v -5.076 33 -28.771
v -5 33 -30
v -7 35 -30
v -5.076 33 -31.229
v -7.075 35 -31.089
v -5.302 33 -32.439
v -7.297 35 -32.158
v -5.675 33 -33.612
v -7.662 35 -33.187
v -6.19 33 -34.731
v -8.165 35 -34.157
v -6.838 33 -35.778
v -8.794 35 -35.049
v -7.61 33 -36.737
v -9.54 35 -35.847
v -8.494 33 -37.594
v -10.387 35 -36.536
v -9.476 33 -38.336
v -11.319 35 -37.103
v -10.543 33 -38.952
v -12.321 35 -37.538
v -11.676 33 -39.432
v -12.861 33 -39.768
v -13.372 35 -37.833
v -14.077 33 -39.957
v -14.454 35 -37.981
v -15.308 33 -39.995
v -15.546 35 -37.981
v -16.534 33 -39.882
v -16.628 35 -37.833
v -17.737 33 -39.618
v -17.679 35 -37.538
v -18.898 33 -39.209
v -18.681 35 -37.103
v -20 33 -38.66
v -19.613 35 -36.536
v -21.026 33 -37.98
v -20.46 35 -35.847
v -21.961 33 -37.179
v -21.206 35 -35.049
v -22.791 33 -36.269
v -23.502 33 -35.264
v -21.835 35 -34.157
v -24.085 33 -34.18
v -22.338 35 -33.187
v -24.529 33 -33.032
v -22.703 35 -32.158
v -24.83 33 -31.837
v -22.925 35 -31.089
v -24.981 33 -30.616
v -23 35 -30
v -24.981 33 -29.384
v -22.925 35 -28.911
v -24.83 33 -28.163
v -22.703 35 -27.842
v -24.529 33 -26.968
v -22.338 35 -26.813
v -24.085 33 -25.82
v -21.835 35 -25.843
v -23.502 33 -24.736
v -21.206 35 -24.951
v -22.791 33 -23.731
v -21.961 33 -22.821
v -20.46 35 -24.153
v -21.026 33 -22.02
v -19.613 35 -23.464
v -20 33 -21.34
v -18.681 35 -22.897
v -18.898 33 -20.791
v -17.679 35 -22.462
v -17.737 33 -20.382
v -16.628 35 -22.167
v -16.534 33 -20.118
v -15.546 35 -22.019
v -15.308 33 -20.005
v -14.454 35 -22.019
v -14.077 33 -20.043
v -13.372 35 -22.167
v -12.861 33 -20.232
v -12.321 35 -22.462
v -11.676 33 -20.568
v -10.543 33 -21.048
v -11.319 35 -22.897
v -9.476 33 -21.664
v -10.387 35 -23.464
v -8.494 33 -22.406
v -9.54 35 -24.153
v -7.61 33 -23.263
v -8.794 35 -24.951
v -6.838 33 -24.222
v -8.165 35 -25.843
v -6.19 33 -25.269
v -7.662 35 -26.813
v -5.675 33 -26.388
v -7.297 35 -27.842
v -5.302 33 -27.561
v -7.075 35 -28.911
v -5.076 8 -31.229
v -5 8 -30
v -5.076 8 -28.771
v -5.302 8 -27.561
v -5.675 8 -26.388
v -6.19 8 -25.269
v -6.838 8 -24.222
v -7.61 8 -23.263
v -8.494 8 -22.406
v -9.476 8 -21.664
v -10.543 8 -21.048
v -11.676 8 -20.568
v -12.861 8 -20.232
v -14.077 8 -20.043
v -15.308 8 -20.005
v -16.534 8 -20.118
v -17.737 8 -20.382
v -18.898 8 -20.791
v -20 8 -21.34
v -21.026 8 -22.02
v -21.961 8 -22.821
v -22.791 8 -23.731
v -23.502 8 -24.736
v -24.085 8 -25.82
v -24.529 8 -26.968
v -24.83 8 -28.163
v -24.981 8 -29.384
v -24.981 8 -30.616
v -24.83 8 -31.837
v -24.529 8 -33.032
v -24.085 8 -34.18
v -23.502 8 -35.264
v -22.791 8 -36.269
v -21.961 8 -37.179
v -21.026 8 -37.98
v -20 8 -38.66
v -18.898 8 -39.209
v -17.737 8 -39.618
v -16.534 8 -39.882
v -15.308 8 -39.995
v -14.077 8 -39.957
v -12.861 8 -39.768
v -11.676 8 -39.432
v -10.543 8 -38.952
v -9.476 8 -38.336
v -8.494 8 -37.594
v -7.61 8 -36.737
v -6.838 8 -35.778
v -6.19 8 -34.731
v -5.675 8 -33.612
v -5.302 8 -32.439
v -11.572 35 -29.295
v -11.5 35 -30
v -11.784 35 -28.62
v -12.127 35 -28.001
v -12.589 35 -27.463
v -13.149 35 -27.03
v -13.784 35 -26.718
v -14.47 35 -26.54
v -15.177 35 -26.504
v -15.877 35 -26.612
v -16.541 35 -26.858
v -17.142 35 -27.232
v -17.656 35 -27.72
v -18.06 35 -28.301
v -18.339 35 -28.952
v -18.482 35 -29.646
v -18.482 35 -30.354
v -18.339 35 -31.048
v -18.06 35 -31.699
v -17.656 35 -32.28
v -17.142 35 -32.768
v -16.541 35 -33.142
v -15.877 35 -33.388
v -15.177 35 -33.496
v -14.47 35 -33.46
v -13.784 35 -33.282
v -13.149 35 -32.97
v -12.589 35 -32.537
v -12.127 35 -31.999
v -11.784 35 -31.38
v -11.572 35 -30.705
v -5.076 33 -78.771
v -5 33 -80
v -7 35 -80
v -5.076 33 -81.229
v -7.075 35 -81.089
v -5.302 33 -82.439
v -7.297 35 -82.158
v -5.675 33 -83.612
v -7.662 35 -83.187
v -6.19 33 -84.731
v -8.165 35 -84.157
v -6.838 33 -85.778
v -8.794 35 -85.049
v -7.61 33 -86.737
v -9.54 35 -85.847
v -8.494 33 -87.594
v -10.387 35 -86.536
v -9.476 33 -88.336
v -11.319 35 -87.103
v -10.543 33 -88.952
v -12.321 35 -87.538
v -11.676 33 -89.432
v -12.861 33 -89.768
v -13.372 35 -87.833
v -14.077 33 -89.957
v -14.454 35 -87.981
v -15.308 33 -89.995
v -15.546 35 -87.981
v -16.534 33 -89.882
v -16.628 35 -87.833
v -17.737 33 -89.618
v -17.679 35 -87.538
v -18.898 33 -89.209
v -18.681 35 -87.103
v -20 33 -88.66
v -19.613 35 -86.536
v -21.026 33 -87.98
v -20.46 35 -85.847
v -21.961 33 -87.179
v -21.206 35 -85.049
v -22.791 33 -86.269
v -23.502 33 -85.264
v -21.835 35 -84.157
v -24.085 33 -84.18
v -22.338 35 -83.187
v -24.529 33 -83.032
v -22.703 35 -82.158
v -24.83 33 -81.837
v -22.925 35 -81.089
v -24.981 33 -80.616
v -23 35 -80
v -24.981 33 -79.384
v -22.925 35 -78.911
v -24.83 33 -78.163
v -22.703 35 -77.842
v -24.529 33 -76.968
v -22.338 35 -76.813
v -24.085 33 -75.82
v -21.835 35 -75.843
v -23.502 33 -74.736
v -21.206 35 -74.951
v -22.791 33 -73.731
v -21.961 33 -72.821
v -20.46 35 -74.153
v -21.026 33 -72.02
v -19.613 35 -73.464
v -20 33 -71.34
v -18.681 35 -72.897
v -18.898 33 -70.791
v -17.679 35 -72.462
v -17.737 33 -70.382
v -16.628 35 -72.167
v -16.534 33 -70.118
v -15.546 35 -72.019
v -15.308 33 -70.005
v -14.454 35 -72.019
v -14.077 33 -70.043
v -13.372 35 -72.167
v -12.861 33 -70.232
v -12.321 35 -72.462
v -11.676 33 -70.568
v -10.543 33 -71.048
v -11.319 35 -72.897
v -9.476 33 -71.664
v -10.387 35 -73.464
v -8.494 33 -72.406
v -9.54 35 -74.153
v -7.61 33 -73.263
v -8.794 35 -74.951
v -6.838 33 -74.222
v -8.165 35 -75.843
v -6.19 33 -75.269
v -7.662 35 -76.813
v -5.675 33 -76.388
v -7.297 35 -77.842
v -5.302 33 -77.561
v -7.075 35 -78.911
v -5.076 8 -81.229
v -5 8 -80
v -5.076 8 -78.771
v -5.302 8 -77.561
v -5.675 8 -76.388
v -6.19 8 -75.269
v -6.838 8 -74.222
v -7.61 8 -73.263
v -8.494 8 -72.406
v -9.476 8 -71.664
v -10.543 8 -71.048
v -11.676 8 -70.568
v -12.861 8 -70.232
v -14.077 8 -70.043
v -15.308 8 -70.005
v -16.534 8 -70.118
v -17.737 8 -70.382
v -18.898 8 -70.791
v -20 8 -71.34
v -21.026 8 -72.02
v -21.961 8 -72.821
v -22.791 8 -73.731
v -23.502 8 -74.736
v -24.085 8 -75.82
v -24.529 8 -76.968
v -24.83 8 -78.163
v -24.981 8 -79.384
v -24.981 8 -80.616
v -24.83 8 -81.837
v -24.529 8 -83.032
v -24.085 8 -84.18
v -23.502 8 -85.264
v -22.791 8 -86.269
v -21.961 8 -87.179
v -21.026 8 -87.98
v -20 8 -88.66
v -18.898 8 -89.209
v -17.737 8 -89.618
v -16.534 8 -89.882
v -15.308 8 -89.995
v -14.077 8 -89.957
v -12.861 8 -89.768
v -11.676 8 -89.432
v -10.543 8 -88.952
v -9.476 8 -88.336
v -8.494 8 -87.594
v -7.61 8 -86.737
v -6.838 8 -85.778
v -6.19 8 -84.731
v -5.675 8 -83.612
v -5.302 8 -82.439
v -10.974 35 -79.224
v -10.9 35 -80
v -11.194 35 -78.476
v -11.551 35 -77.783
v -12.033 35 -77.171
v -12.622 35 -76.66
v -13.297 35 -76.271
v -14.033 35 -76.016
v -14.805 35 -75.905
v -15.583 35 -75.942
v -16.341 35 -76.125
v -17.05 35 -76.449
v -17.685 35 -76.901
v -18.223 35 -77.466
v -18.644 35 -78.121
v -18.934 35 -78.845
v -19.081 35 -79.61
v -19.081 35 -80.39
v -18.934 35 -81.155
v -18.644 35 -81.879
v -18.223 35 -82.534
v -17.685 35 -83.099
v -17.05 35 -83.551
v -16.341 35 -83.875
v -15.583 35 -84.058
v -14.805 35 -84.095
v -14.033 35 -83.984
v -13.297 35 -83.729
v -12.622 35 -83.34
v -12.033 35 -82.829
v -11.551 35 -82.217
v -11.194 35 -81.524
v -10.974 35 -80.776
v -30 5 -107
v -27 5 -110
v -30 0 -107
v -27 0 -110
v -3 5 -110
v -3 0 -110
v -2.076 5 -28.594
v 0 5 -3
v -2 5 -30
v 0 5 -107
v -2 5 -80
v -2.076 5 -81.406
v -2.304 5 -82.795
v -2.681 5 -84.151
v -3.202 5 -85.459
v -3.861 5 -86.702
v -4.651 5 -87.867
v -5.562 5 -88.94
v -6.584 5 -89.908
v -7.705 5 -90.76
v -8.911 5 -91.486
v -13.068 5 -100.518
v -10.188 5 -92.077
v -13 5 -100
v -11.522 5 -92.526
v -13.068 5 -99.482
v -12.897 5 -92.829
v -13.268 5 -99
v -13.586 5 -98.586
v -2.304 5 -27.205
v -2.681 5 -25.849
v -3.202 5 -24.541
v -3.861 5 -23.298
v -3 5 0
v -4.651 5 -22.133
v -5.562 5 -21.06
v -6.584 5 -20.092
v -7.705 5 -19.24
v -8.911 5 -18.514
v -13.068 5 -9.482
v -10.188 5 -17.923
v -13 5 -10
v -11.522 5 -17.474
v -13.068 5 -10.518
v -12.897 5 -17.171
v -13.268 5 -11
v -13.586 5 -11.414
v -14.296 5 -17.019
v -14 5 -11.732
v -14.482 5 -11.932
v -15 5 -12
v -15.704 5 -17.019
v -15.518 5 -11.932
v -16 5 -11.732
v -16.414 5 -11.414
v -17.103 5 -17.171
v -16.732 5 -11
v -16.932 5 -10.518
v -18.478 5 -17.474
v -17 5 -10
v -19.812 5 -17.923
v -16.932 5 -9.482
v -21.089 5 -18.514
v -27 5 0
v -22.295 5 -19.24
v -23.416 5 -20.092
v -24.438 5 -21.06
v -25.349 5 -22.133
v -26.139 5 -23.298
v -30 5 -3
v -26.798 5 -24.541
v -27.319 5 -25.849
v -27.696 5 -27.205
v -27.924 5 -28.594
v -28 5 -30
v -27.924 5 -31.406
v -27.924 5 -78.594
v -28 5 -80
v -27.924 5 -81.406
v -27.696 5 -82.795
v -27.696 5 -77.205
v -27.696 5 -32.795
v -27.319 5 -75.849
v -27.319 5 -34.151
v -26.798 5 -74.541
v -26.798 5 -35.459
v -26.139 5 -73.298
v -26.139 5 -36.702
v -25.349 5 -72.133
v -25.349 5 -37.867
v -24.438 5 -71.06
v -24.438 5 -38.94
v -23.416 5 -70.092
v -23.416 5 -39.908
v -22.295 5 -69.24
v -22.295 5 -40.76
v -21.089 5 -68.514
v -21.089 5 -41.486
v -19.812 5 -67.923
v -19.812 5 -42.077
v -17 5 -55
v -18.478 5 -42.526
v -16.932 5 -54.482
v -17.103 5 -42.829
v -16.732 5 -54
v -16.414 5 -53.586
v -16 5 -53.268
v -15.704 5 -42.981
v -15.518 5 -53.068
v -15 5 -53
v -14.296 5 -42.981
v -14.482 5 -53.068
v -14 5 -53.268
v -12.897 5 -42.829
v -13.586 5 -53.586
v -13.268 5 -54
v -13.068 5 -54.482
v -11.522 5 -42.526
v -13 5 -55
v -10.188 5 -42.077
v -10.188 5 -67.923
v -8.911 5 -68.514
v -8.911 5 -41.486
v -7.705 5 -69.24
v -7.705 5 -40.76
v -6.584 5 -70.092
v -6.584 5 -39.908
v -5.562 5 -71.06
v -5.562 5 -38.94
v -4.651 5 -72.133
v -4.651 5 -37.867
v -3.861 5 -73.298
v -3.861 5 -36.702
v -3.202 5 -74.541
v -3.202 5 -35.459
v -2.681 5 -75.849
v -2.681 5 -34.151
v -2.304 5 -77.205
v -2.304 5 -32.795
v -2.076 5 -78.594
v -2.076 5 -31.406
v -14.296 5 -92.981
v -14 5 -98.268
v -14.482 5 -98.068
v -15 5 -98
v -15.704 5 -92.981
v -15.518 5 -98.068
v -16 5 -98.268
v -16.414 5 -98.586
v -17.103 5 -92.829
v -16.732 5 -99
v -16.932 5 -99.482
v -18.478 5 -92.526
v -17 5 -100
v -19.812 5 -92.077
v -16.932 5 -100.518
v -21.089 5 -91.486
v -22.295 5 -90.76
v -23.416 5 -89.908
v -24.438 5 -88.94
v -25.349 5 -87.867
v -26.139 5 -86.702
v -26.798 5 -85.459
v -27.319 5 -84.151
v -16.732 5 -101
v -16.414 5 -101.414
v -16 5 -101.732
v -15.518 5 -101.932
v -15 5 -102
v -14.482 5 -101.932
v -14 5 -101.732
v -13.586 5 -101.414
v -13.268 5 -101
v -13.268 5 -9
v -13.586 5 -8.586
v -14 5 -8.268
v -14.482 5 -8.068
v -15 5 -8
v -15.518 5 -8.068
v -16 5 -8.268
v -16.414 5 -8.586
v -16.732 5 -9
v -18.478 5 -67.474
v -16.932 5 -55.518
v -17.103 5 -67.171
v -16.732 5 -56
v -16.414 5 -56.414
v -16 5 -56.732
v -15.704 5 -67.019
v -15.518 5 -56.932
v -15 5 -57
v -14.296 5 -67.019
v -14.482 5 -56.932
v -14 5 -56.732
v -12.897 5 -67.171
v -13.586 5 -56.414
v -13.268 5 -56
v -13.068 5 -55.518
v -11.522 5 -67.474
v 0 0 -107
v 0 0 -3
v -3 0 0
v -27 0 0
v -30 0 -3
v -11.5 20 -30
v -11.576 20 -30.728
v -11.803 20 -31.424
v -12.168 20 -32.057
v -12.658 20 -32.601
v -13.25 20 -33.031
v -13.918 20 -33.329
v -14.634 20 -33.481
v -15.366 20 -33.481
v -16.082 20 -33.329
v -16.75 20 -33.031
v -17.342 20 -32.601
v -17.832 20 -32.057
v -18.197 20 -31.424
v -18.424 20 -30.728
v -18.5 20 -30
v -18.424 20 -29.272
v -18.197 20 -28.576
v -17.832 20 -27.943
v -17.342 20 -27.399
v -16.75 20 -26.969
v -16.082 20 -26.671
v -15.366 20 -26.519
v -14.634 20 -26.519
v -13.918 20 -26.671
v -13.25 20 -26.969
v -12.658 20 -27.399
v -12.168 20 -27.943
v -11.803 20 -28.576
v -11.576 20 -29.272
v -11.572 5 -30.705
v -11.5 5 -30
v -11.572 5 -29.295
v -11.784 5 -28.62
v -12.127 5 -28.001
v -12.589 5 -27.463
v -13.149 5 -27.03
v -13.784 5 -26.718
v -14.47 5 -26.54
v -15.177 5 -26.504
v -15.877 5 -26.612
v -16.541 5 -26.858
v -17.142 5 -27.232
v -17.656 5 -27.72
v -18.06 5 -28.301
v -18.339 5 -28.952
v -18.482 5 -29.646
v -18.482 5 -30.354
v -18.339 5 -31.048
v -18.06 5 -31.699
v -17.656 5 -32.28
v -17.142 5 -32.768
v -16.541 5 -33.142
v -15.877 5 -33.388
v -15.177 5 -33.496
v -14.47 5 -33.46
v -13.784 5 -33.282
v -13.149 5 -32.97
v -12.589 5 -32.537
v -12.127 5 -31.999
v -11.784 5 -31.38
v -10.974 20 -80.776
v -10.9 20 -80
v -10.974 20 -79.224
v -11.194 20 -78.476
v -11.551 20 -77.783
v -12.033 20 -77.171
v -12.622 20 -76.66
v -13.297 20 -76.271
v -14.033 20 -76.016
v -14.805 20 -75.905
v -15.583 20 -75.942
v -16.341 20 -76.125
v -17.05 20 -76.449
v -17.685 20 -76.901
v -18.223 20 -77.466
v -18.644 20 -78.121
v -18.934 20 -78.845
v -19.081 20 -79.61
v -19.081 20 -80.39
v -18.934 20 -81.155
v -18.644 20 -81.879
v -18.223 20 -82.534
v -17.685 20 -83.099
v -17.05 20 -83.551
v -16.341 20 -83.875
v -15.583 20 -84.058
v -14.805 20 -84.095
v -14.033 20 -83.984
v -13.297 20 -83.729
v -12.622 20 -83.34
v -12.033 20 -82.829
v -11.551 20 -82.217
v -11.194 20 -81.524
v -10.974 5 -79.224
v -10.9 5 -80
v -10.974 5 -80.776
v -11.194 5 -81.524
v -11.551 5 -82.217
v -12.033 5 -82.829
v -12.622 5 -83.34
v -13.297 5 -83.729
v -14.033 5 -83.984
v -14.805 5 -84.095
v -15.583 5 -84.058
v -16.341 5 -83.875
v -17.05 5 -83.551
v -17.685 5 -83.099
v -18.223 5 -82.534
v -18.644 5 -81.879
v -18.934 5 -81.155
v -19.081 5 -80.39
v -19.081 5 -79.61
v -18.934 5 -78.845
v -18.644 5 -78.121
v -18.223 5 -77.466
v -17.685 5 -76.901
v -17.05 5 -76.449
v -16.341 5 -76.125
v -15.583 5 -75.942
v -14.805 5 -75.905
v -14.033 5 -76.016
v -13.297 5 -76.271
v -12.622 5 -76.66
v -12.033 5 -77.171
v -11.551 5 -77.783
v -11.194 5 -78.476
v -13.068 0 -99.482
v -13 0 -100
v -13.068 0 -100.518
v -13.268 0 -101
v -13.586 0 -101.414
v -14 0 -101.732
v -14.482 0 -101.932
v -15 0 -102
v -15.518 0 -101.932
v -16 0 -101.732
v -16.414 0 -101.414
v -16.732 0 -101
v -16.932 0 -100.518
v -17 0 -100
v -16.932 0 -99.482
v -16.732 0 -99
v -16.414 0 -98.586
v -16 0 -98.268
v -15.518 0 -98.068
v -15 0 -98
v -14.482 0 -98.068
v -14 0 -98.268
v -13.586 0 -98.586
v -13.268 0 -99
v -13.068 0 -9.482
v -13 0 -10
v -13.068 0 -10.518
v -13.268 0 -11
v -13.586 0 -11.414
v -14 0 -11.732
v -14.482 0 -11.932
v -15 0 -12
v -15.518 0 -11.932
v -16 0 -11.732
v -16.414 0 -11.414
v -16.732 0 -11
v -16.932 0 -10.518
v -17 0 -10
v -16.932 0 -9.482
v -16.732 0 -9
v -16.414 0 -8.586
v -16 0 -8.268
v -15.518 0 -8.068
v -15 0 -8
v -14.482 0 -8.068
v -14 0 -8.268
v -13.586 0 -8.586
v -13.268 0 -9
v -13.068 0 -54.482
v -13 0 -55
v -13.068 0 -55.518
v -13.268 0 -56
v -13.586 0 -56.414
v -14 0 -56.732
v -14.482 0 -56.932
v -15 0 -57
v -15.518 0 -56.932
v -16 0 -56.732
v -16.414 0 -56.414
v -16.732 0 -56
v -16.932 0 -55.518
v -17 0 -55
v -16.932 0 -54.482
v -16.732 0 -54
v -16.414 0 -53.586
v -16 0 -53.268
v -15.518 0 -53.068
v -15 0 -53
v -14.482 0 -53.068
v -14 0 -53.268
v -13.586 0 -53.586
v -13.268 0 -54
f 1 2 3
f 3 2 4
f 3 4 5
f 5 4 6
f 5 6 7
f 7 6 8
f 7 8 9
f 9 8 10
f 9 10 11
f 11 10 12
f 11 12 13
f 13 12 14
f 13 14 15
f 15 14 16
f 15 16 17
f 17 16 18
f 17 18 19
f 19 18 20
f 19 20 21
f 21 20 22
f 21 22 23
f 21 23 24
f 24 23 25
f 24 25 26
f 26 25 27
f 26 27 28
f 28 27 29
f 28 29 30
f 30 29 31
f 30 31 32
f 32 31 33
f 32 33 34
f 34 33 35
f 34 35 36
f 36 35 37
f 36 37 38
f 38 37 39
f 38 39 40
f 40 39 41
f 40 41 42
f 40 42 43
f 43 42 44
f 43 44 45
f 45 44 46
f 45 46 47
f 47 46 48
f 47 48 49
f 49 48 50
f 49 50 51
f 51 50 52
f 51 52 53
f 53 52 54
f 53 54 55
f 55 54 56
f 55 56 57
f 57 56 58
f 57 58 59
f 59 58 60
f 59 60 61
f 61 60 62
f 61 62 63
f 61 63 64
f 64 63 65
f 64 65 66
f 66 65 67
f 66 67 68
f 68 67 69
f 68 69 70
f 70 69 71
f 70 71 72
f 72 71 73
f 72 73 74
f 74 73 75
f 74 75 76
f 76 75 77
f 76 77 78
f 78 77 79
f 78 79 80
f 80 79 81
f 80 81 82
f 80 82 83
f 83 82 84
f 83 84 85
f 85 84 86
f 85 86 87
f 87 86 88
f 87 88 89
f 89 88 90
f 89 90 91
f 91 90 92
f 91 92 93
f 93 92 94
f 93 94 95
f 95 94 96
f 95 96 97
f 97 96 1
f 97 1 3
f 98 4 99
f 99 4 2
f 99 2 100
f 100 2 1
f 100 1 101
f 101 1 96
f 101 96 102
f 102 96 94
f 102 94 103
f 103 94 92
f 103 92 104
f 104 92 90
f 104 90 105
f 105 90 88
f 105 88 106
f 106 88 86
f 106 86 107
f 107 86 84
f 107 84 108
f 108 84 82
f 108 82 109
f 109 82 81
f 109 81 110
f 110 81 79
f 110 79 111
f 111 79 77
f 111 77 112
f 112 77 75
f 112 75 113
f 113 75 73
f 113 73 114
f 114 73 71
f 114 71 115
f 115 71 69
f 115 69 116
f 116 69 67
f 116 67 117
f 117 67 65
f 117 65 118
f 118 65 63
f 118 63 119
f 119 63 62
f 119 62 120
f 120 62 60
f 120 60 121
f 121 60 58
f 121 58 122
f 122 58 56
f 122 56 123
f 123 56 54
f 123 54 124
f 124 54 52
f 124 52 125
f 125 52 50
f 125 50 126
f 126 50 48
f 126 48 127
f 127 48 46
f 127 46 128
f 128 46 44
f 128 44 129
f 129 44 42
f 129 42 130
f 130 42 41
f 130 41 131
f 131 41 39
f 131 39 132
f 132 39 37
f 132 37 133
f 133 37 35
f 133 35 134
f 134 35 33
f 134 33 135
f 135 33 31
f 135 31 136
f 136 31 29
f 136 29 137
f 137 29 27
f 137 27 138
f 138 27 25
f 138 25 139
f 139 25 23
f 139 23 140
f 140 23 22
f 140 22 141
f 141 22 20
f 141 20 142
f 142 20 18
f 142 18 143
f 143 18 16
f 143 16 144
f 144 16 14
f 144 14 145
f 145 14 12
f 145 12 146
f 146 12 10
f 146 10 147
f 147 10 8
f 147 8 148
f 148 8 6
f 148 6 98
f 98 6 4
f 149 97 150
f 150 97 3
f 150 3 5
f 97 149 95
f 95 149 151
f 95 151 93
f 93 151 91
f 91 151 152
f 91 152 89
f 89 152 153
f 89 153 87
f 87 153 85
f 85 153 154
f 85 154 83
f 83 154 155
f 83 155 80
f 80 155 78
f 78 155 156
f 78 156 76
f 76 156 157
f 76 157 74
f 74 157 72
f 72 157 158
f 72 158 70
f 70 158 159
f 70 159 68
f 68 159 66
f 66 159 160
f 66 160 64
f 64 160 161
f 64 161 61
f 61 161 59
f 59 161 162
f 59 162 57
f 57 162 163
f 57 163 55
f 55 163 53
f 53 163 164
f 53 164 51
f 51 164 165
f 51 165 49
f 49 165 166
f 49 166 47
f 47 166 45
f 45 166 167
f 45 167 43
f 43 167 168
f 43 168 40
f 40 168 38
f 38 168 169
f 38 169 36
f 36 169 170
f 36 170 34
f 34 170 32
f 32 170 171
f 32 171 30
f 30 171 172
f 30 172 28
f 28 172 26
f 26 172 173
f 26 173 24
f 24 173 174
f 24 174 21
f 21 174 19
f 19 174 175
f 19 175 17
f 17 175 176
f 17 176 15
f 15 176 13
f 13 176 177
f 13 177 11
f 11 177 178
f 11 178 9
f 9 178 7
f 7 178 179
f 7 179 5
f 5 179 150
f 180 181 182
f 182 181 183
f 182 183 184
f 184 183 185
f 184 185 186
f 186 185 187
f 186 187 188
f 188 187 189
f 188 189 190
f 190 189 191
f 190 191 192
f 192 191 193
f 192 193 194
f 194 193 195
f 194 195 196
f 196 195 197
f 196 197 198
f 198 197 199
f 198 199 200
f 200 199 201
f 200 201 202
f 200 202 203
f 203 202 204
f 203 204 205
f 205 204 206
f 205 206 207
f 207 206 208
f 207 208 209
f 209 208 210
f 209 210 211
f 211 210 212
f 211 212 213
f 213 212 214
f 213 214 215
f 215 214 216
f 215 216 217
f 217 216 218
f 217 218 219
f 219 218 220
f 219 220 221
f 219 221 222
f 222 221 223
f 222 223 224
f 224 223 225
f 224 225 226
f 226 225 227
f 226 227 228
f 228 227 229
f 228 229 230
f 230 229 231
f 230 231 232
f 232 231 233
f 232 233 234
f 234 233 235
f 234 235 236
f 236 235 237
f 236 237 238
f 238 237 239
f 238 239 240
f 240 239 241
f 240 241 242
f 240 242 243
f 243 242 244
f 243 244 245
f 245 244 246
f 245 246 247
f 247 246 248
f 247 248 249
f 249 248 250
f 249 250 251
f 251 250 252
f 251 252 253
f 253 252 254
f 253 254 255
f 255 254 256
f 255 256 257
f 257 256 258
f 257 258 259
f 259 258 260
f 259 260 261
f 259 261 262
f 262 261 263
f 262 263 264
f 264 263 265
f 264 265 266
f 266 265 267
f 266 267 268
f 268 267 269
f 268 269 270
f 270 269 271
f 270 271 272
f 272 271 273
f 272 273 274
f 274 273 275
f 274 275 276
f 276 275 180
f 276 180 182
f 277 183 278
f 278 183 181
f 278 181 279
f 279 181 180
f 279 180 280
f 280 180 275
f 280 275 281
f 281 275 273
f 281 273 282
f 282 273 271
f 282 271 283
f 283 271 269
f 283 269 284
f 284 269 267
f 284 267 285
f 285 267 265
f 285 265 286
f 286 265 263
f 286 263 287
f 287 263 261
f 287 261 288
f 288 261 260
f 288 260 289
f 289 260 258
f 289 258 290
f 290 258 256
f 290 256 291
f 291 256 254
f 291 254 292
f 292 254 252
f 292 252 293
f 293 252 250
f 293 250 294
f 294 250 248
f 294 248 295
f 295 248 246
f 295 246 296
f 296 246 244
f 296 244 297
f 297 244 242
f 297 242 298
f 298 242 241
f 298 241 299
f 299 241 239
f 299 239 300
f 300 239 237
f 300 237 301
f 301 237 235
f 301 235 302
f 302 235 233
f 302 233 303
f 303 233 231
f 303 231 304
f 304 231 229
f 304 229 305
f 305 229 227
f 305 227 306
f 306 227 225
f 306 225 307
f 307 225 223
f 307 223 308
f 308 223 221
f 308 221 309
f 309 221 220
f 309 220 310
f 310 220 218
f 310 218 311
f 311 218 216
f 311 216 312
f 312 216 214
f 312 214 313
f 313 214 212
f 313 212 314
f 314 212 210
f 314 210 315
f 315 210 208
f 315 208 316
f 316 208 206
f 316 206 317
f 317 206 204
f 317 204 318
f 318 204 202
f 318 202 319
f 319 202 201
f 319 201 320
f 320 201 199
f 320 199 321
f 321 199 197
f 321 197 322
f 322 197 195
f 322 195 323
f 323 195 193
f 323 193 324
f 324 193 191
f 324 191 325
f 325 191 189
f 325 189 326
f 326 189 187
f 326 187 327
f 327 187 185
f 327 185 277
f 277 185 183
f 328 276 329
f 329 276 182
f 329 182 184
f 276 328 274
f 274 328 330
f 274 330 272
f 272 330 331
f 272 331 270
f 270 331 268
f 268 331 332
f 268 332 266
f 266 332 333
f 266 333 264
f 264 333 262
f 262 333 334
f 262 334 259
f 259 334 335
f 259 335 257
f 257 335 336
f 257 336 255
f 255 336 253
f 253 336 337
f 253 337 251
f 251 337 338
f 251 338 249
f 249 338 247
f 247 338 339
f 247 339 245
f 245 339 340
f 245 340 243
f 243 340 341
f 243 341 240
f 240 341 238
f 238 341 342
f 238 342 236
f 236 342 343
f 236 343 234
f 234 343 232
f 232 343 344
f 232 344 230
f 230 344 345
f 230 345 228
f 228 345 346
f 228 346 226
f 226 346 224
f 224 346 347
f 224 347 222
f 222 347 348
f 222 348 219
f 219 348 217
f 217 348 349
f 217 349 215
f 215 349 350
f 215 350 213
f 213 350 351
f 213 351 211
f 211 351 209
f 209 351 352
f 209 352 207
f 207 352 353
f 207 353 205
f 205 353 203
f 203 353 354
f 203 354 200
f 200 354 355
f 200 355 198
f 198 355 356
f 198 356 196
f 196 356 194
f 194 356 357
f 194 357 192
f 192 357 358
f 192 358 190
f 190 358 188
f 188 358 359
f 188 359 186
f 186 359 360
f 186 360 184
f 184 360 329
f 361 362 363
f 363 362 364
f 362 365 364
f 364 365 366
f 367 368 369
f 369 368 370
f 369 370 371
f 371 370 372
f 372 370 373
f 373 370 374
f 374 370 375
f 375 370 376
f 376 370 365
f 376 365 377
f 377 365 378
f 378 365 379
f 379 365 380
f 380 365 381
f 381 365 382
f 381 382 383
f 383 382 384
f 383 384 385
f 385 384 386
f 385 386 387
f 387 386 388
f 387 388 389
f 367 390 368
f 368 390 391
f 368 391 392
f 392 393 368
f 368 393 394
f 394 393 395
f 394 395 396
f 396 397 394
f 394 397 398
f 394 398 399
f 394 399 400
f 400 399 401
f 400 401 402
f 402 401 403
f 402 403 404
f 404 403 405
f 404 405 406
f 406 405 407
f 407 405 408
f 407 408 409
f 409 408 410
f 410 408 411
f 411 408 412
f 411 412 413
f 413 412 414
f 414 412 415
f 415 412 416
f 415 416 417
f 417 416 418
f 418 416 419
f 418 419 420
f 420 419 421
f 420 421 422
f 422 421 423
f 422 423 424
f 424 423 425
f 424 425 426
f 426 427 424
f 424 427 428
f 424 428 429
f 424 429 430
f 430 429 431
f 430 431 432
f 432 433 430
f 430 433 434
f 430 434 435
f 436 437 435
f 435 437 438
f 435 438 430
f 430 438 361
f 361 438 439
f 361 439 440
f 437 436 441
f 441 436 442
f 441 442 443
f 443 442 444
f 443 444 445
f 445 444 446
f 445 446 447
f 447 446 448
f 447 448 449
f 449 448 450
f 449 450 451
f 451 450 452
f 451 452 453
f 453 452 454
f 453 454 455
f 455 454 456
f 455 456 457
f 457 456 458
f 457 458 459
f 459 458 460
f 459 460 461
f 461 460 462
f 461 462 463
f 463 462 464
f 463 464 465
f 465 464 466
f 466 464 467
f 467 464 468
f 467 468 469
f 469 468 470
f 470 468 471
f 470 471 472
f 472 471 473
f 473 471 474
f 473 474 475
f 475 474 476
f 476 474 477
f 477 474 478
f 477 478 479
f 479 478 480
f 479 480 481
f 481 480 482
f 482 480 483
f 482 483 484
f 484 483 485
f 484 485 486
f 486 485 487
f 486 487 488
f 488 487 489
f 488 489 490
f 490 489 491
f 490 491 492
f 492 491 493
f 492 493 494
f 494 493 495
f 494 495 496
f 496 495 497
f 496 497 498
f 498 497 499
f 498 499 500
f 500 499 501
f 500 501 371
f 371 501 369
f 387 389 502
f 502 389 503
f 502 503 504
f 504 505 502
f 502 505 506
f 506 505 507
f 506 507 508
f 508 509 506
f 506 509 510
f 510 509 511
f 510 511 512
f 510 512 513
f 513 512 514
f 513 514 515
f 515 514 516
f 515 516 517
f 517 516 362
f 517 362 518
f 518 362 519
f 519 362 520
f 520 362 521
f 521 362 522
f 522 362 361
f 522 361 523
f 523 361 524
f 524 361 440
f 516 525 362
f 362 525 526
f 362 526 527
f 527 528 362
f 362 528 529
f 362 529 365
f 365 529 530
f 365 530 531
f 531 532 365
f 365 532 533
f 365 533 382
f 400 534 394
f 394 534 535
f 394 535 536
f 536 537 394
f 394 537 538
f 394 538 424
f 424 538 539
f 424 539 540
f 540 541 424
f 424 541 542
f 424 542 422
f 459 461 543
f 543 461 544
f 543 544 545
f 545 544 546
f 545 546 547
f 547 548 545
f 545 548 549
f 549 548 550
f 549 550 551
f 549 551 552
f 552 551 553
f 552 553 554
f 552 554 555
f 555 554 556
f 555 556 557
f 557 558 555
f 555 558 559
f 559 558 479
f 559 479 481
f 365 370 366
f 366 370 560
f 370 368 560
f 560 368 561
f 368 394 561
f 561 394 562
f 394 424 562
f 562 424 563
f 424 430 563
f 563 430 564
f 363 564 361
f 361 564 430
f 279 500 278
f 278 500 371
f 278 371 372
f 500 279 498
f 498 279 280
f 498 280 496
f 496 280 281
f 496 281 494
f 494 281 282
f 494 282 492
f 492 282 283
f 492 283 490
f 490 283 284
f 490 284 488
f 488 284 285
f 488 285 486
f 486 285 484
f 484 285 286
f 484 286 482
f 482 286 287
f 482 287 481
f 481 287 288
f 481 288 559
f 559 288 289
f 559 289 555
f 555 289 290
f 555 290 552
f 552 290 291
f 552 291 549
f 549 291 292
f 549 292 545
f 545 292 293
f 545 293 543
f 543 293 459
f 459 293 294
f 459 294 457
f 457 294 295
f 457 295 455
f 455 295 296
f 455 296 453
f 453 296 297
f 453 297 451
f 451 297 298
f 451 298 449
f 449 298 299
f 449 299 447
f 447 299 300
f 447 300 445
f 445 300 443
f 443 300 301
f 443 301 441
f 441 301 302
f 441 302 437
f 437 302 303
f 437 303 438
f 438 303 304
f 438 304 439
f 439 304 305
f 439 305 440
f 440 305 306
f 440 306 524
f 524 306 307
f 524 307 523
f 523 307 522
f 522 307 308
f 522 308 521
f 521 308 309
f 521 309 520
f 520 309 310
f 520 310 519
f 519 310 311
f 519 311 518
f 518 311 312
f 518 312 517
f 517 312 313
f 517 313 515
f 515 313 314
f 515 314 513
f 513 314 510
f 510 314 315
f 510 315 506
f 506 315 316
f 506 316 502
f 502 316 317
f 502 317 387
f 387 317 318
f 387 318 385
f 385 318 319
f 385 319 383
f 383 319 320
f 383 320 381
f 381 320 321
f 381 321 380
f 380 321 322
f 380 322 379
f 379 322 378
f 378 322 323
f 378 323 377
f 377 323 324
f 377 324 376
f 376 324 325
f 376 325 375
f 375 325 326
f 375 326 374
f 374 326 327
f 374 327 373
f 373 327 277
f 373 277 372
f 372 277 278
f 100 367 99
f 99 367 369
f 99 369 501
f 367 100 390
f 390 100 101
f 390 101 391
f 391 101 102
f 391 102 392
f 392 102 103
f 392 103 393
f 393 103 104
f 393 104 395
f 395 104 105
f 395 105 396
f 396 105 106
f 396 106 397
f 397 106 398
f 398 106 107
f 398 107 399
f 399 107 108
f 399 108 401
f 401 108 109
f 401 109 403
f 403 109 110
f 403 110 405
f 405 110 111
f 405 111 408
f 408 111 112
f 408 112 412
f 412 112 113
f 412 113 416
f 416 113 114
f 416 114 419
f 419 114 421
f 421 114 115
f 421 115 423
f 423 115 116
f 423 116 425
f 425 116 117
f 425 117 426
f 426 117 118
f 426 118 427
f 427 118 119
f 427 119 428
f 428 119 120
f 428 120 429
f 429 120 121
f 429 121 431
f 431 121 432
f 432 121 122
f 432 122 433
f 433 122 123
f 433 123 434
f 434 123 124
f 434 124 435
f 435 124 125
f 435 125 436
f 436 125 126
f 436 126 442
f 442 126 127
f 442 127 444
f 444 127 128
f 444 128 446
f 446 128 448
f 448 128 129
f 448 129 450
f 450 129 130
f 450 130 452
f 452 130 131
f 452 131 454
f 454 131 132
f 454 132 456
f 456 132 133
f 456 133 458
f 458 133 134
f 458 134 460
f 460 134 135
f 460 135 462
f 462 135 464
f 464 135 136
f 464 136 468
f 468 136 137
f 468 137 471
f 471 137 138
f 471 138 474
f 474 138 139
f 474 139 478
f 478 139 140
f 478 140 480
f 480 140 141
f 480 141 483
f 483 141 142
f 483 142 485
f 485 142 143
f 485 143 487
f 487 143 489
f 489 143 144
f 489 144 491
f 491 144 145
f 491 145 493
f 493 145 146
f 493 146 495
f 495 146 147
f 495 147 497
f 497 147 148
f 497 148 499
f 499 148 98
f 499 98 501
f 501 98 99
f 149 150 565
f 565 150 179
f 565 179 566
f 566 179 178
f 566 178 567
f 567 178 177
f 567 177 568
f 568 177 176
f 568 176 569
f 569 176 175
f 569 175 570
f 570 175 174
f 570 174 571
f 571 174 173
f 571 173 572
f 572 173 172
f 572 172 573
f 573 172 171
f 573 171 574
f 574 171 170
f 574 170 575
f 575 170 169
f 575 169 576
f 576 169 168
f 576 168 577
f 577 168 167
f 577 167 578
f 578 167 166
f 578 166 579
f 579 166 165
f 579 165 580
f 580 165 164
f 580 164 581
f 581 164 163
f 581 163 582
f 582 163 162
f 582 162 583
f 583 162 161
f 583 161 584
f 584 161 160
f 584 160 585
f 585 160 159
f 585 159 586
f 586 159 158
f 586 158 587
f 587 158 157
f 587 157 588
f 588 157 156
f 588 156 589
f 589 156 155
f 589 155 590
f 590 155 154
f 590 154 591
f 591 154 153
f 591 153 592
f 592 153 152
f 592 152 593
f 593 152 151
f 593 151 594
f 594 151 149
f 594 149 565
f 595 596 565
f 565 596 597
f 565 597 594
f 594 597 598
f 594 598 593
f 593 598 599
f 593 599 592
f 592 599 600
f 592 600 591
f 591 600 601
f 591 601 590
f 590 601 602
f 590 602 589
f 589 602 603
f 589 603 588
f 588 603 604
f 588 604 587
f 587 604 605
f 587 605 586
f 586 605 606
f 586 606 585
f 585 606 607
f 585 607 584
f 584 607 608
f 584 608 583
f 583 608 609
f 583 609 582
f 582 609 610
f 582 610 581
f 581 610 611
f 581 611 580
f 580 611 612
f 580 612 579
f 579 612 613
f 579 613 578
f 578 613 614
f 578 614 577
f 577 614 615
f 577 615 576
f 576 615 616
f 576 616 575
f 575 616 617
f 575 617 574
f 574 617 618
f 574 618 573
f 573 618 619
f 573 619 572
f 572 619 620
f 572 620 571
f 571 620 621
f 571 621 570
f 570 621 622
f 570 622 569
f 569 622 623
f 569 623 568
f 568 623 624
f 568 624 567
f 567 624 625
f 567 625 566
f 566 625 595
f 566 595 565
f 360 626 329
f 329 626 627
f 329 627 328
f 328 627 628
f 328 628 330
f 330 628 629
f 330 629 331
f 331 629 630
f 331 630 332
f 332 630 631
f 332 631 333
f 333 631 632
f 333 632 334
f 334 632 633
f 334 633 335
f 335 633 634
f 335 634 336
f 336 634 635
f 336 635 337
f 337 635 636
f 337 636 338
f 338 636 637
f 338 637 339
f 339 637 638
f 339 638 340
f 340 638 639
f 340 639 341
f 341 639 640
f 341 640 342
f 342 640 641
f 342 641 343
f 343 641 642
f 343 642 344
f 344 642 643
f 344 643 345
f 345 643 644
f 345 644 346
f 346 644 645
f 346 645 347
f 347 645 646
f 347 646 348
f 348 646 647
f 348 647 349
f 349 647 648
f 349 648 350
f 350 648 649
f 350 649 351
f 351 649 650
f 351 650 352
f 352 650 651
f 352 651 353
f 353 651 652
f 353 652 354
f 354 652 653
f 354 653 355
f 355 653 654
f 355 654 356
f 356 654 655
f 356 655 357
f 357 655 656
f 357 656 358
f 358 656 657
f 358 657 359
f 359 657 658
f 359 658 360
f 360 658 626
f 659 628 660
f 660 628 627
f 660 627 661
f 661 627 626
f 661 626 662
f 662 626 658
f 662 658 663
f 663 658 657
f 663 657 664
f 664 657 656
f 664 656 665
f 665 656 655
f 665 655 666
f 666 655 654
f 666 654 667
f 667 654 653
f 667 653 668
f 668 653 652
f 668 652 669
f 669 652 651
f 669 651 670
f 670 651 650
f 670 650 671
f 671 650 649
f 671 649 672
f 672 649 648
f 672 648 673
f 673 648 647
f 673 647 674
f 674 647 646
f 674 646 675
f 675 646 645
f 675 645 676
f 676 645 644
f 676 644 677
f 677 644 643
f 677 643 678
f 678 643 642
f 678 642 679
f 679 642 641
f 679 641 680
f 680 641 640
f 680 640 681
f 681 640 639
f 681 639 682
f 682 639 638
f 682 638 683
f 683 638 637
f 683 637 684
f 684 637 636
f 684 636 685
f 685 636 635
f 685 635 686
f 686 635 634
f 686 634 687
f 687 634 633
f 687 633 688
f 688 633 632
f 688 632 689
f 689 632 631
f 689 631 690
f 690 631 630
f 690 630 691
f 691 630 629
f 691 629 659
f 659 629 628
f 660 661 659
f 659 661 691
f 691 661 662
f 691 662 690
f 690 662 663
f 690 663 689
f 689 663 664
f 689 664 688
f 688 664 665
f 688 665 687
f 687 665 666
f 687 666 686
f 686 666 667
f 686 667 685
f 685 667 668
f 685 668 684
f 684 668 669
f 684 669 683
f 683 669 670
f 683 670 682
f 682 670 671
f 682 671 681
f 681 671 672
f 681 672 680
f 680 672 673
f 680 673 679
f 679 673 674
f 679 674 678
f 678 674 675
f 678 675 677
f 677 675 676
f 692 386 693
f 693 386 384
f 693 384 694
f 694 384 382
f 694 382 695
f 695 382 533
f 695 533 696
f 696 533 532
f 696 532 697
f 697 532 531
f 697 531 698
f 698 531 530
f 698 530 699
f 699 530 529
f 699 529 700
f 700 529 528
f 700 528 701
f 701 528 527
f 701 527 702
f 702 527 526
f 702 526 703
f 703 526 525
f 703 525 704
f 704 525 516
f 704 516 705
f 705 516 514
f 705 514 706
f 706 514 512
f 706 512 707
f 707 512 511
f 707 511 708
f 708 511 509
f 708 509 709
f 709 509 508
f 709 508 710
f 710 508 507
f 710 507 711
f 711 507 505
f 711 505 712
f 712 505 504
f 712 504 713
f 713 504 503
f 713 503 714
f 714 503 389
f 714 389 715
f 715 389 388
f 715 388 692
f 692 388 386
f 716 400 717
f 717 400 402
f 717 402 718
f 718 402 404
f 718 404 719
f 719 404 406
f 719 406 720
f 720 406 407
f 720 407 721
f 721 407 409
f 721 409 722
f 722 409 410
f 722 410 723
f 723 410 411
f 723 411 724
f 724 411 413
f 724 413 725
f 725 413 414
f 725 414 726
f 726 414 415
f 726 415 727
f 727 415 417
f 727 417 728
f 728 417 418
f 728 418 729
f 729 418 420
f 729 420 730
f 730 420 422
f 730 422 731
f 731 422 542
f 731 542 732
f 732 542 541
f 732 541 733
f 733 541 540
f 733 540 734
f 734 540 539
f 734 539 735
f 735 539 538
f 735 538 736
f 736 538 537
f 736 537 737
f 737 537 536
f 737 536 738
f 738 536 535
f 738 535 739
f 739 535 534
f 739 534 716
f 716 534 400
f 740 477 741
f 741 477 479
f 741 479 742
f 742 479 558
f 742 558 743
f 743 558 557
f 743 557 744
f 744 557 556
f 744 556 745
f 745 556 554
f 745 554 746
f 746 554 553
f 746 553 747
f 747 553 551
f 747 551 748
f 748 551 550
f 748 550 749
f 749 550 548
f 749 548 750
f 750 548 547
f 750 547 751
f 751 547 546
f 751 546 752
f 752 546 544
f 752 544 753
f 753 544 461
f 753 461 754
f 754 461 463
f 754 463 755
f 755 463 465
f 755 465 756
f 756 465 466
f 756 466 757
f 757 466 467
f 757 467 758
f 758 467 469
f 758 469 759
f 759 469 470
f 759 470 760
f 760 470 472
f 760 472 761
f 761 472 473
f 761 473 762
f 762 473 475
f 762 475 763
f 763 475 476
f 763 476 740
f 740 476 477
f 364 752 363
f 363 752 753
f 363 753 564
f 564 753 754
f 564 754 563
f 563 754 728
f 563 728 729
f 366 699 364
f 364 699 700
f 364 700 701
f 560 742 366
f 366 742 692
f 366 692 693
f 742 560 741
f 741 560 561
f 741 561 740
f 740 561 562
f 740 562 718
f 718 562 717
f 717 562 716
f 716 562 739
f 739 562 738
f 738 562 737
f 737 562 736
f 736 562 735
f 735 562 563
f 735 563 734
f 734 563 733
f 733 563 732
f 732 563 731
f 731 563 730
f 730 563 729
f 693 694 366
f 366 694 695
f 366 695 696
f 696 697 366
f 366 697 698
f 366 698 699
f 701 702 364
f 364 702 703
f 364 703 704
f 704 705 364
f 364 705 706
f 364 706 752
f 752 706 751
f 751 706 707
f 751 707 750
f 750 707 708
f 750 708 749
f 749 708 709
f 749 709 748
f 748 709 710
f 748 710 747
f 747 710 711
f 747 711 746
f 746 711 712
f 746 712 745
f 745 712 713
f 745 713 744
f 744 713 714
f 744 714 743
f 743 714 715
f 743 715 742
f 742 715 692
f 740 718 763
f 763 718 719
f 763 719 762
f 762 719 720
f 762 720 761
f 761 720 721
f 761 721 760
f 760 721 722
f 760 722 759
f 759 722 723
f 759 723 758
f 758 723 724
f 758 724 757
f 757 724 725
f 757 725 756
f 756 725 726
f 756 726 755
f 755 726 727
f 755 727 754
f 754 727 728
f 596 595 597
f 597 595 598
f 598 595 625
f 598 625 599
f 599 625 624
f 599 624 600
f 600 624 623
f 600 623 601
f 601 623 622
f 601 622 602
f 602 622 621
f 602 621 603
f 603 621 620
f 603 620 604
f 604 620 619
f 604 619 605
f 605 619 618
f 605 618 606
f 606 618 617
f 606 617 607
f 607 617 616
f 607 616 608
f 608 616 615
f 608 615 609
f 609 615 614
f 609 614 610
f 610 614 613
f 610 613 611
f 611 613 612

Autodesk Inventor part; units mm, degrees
ref_plane "YZ Plane" through (0, 0, 0) normal (1, 0, 0) x (0, 1, 0)
ref_plane "XZ Plane" through (0, 0, 0) normal (0, 1, 0) x (-1, 0, 0)
ref_plane "XY Plane" through (0, 0, 0) normal (0, 0, 1) x (1, 0, 0)
sketch "Sketch1" plane through (0, 0, 0) normal (0, 1, 0) x (-1, 0, 0)
  line L0 (0, 0) -> (30, 0)
  line L1 (30, 0) -> (30, -110)
  line L2 (30, -110) -> (0, -110)
  line L3 (0, -110) -> (0, 0)
  dimension "d0" = 30
  dimension "d1" = 110
extrude "Extrusion1" add sketch "Sketch1" along normal blind 5
sketch "Sketch2" plane through (0, 5, 0) normal (0, 1, 0) x (1, 0, 0)
  circle A0 centre (-10, 30) radius 3.5
  line L0 (0, 0) -> (0, 110) projected
  line L1 (-30, 0) -> (0, 0) projected
  circle A1 centre (-10, 30) radius 20
  line L2 (-30, 110) -> (-30, 0) projected
  circle A2 centre (-15, 10) radius 2
  line L3 (-30, 55) -> (0, 55) construction
  circle A3 centre (-10, 80) radius 3.5
  circle A4 centre (-10, 80) radius 20
  circle A5 centre (-15, 100) radius 2
  circle A6 centre (-15, 55) radius 2
  line L4 (-15, 0) -> (-15, 110) construction
  dimension "d4" = 7
  dimension "d5" = 10
  dimension "d6" = 30
  dimension "d7" = 4
  dimension "d9" = 10
  dimension "d10" = 4
extrude "Extrusion2" cut sketch "Sketch2" against normal blind 5 contours A2 A1 | A1 A2 | A5 A4 | A4 A5 | A6
sketch "Sketch3" plane through (0, 5, 0) normal (0, 1, 0) x (1, 0, 0)
  line L0 (0, 110) -> (0, 0) construction
  line L1 (0, 55) -> (-30, 55) construction
  line L2 (-30, 0) -> (-30, 110) construction
  circle A0 centre (-15, 30) radius 3.5
  circle A1 centre (-15, 80) radius 4.1
  line L3 (-30, 0) -> (0, 0) projected
  line L4 (0, 110) -> (-30, 110) projected
  circle A2 centre (-15, 30) radius 10
  circle A3 centre (-15, 80) radius 10
  line L5 (-30, 110) -> (-30, 0) projected
  line L6 (-15, 0) -> (-15, 110) construction
  dimension "d13" = 7
  dimension "d14" = 8.2
  dimension "d16" = 30
  dimension "d17" = 30
  dimension "d22" = 20
extrude "Extrusion3" add sketch "Sketch3" along normal blind 30
chamfer "Chamfer1" distance 3 angle 45 1 edges at (-25, 5, -30)
chamfer "Chamfer2" distance 3 angle 45 1 edges at (-25, 5, -80)
chamfer "Chamfer3" distance 3 angle 45 4 edges at (-30, 2.5, 0) (0, 2.5, 0) (0, 2.5, -110) (-30, 2.5, -110)
chamfer "Chamfer4" distance 2 angle 45 2 edges at (-25, 35, -80) (-25, 35, -30)
